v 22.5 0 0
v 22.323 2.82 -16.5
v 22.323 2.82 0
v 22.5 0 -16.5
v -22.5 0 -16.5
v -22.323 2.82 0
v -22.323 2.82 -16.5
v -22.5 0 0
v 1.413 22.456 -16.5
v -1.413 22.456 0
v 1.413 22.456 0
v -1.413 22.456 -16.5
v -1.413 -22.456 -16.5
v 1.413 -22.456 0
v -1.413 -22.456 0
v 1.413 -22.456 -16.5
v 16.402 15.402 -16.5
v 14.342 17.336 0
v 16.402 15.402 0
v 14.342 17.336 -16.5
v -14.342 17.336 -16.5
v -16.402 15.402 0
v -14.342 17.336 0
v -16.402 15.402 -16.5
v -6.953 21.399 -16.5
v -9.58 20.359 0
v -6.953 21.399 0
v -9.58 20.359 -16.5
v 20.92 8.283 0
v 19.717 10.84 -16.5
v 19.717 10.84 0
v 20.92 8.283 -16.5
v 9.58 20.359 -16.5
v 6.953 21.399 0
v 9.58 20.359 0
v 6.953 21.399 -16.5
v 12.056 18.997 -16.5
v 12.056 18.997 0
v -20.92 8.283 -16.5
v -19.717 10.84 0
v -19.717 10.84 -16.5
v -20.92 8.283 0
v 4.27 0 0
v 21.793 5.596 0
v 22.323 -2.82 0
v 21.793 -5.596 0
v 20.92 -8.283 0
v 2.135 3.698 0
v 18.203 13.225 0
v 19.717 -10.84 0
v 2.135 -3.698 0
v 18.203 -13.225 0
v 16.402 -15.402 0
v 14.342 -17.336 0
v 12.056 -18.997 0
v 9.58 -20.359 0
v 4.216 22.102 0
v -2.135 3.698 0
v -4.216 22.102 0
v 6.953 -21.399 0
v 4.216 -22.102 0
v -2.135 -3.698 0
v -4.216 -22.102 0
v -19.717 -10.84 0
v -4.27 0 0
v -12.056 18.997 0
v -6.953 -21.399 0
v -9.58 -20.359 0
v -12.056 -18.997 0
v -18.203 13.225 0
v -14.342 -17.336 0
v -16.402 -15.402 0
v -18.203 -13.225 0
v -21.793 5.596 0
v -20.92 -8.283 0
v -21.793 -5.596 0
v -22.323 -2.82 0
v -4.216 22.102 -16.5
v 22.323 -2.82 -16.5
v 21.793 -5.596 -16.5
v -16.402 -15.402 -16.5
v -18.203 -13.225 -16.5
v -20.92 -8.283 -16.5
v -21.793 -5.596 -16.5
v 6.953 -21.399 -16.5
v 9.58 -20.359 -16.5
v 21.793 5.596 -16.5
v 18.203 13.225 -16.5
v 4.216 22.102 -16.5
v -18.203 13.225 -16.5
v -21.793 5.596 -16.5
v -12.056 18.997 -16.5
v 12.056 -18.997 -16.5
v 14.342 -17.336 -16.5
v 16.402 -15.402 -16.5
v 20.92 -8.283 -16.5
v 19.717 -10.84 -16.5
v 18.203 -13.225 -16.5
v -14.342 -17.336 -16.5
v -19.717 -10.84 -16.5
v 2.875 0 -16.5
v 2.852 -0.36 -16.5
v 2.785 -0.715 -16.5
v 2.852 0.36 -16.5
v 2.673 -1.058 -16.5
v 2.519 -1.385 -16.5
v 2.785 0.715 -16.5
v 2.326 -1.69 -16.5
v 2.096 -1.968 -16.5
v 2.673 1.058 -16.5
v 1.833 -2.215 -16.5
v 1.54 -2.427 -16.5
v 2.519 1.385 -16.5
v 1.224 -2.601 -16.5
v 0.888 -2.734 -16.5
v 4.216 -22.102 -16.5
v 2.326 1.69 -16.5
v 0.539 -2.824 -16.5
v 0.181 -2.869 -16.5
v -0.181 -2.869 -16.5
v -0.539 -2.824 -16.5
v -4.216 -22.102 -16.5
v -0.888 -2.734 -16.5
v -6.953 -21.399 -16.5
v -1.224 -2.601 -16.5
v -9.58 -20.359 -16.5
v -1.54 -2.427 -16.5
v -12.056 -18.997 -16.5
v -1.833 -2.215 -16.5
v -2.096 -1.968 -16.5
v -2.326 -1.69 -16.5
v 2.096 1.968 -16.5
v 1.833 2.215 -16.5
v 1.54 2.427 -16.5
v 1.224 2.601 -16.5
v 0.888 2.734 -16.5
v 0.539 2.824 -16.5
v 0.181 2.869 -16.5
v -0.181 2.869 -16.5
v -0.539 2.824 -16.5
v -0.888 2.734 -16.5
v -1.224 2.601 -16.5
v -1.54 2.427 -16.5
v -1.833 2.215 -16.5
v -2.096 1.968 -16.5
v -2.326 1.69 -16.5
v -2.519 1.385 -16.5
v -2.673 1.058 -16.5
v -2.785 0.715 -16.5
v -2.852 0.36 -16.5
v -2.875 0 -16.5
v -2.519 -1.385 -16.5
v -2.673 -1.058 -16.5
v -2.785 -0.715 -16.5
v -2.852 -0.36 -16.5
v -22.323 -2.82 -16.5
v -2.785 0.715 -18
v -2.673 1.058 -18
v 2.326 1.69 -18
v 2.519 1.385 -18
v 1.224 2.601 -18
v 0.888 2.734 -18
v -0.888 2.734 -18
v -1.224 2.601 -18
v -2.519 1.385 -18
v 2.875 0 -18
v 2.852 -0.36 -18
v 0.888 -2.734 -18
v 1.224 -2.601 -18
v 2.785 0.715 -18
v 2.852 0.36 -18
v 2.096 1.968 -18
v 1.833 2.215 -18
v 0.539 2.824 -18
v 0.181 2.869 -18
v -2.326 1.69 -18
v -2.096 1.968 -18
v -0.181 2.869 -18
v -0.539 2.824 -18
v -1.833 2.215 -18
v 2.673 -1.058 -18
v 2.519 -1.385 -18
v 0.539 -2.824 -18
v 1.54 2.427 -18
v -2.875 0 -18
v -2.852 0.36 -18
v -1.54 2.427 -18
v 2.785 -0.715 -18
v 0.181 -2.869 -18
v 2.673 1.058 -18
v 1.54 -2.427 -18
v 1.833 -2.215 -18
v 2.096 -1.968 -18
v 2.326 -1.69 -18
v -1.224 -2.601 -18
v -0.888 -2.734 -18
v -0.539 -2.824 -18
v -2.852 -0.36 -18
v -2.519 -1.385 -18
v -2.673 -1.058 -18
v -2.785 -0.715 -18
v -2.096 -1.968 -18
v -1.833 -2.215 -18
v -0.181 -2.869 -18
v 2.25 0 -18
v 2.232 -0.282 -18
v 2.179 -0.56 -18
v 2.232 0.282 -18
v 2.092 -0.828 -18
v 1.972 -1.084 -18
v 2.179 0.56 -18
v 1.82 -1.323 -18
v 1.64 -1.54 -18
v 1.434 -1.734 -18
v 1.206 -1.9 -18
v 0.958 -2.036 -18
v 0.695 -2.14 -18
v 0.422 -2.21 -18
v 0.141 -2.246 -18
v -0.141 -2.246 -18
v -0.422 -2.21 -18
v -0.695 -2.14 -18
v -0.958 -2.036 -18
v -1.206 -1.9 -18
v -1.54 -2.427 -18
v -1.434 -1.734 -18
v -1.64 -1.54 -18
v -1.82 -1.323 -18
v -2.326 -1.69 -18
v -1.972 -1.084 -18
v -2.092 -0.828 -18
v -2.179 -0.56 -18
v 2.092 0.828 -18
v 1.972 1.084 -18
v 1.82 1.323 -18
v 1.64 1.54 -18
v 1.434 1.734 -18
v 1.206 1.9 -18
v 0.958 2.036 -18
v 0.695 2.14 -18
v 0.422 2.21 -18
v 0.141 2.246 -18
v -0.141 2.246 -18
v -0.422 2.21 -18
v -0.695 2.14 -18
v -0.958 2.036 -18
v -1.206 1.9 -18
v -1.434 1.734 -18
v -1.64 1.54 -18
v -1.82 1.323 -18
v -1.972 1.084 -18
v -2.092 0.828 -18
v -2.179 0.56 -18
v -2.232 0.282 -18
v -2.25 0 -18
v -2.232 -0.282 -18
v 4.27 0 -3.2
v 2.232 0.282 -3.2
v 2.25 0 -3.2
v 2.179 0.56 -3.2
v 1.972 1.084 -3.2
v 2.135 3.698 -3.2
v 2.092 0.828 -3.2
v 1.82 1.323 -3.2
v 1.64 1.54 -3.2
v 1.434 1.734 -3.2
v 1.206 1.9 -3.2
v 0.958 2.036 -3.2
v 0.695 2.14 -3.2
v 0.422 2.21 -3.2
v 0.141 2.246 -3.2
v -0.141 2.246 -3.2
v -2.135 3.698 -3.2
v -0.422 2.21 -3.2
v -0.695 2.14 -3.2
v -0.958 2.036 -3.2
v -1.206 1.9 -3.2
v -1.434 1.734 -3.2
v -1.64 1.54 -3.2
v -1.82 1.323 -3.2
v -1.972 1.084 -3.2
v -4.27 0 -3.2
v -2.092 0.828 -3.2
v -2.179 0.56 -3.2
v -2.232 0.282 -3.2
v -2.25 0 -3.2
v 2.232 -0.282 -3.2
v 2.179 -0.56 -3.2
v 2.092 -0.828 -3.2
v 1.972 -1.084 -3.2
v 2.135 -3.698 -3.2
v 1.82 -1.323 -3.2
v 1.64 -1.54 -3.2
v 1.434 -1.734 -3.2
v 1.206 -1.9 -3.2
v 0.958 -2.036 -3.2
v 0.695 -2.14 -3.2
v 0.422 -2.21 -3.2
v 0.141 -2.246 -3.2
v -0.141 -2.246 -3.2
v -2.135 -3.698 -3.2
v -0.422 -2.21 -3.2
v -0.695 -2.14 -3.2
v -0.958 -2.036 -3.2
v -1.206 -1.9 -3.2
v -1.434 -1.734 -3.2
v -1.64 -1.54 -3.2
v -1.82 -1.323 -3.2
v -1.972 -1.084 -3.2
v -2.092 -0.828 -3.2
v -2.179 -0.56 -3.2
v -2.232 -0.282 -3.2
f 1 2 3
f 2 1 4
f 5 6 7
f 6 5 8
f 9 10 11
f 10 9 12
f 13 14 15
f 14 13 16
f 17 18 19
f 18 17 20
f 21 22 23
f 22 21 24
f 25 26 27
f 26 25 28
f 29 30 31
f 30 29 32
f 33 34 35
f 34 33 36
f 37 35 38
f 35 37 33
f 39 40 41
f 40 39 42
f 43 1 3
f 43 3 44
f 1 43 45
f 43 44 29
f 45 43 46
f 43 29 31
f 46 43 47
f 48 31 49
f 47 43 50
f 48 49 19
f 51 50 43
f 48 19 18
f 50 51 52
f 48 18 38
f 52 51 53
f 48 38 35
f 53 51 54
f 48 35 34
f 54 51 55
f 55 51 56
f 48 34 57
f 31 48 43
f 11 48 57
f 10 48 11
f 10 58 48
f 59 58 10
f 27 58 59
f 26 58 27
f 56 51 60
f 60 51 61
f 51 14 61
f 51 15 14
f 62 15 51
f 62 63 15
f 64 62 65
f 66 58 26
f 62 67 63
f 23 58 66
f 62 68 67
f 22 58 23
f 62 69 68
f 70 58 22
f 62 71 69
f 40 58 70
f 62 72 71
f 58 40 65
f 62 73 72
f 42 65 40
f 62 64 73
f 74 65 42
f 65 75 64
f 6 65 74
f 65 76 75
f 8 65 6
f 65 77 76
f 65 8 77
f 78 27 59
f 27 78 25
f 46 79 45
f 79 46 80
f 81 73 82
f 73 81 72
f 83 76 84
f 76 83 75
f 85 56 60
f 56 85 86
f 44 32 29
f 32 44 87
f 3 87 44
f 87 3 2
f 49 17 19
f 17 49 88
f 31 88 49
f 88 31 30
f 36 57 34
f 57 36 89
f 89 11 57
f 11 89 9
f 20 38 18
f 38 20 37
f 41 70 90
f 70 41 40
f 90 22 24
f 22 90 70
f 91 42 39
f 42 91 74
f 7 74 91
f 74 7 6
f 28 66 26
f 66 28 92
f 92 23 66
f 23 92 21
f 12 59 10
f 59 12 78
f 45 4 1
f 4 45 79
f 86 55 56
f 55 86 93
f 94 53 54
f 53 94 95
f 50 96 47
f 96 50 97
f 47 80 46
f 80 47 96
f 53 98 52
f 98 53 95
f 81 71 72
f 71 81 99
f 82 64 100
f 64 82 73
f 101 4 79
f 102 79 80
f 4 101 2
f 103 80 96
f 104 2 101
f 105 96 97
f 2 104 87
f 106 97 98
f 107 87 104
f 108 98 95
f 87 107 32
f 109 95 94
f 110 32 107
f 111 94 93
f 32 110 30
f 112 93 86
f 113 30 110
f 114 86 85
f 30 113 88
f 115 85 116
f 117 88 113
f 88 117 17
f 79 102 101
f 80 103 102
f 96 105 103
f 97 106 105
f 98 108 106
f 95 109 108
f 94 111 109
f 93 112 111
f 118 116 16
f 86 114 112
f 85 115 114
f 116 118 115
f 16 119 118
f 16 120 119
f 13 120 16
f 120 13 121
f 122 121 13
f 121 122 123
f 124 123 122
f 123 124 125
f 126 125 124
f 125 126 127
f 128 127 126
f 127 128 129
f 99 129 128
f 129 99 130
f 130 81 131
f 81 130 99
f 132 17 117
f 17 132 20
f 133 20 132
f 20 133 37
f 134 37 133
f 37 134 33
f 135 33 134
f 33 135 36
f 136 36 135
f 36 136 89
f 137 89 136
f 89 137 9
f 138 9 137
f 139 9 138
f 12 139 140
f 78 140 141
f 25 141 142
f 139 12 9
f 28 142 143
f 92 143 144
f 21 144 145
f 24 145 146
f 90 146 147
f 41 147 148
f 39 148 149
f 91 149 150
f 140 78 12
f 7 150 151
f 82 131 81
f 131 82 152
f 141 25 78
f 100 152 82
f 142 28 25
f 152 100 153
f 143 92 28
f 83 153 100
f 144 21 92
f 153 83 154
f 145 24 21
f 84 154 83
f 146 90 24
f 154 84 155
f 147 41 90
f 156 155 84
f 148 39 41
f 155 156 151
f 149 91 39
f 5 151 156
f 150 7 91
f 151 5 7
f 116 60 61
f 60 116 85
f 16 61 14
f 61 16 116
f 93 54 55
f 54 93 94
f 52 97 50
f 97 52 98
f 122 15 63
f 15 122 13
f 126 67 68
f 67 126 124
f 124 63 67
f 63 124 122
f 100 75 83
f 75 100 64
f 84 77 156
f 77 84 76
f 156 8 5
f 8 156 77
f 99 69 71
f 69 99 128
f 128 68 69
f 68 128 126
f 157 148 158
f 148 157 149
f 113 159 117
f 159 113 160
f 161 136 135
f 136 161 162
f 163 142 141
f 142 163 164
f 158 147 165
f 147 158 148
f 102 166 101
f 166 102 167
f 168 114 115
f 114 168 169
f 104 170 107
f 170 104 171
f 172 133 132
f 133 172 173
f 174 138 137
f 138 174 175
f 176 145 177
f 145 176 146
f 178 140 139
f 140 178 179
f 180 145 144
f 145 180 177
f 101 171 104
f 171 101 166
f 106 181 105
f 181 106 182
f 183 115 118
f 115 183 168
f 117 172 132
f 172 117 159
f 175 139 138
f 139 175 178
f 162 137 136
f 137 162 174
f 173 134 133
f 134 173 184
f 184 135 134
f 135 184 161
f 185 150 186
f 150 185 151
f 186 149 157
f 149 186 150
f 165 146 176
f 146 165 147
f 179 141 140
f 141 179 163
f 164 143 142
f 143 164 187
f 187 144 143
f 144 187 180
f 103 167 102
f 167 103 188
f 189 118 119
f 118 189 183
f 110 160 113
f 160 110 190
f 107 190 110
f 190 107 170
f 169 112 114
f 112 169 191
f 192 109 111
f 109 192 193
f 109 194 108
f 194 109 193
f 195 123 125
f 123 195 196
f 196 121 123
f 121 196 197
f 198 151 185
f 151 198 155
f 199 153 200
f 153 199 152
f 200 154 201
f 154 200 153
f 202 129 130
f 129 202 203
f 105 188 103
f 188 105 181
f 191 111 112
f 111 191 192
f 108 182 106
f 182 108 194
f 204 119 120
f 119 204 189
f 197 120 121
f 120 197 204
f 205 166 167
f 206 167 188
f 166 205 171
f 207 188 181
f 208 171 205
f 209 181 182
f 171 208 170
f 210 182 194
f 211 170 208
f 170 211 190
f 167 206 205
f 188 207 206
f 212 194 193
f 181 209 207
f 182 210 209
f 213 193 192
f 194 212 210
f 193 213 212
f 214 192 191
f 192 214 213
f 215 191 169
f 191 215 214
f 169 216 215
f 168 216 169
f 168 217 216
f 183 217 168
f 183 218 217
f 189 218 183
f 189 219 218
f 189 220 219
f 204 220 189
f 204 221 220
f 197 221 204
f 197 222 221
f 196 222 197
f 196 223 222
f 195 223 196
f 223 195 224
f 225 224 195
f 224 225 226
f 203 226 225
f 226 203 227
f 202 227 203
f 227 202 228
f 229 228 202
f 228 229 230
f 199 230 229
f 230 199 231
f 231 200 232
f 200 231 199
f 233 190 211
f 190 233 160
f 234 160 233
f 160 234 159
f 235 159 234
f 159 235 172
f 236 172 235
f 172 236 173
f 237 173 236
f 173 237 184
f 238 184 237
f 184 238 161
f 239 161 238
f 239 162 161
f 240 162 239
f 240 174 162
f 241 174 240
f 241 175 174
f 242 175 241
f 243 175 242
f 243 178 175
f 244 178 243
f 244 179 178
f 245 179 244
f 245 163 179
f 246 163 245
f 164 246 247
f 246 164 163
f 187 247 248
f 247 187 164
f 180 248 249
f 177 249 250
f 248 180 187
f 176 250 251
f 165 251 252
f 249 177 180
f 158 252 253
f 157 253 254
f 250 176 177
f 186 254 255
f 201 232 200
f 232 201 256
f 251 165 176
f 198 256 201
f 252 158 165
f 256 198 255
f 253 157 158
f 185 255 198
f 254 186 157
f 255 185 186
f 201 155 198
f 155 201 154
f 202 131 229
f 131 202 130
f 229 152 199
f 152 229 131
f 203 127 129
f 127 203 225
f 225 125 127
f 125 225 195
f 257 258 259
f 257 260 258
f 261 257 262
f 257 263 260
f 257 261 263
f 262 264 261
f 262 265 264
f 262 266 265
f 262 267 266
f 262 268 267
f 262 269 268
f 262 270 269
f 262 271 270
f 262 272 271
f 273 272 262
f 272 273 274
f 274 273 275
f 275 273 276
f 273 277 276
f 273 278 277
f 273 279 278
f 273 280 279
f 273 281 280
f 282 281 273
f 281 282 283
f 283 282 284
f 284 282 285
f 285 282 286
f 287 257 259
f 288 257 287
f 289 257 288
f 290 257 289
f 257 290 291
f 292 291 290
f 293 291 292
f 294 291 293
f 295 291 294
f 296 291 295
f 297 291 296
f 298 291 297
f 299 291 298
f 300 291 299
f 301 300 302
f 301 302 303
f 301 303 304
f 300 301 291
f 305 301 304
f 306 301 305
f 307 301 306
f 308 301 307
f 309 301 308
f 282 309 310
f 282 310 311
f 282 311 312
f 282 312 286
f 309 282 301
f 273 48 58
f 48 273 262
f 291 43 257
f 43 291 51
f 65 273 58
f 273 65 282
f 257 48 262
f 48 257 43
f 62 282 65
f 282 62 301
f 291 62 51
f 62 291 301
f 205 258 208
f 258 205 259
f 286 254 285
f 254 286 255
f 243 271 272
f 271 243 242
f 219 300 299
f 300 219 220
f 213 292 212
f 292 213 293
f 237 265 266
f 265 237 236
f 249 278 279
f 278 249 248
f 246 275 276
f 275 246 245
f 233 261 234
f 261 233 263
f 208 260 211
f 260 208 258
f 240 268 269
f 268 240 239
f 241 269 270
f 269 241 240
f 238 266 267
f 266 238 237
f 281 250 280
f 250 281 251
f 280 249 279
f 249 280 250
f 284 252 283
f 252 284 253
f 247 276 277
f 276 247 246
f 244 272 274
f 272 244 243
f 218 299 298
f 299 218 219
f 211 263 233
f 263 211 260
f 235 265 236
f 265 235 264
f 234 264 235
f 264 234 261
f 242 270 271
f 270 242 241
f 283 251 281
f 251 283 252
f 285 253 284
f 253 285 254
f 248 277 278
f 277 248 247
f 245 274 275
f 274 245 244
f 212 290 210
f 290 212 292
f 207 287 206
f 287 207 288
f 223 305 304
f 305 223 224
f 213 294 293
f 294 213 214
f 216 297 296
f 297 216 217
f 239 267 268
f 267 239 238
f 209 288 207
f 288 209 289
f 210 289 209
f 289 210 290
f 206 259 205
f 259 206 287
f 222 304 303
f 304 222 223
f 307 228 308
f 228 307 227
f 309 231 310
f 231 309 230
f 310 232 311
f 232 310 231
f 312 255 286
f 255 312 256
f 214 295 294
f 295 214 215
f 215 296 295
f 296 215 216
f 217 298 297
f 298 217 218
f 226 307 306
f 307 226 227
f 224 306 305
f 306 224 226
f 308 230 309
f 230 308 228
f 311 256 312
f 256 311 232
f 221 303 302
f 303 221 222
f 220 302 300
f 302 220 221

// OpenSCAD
$fn = 50;


difference() {
	union() {
		translate(v = [0, 0, -16.5000000000]) {
			cylinder(h = 16.5000000000, r = 22.5000000000);
		}
		#translate(v = [0, 0, -18.0000000000]) {
			cylinder(h = 18, r = 2.8750000000);
		}
	}
	union() {
		translate(v = [0, 0, 0]) {
			rotate(a = [0, 0, 0]) {
				difference() {
					union() {
						translate(v = [0, 0, -3.2000000000]) {
							linear_extrude(height = 3.2000000000) {
								polygon(points = [[4.2698000000, 0.0000000000], [2.1349000000, 3.6977552691], [-2.1349000000, 3.6977552691], [-4.2698000000, 0.0000000000], [-2.1349000000, -3.6977552691], [2.1349000000, -3.6977552691]]);
							}
						}
					}
					union();
				}
			}
		}
		#translate(v = [0, 0, -100.0000000000]) {
			cylinder(h = 200, r = 2.2500000000);
		}
	}
}
